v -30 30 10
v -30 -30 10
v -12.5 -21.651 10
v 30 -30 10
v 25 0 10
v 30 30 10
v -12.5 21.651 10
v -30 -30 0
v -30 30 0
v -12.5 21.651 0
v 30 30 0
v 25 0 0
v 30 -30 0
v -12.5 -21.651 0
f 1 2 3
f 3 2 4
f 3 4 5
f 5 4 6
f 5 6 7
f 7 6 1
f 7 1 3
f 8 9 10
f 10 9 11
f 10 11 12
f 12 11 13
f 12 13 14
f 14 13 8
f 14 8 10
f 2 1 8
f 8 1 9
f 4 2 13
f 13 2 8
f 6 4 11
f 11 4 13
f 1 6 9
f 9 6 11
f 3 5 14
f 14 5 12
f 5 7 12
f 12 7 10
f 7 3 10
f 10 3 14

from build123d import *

# Parameters (mm, degrees)
SCHIZZO1_W                   = 60
SCHIZZO1_H                   = 60
ESTRUSIONE_ESTRUSIONE1_DEPTH = 10


with BuildPart() as part:
    # Schizzo1 → Estrusione-Estrusione1 (new body)
    with BuildSketch(Plane.XY):
        Rectangle(SCHIZZO1_W, SCHIZZO1_H)
        Polygon((25, 0), (-12.5, 21.650635095), (-12.5, -21.650635095), align=None, mode=Mode.SUBTRACT)
    extrude(amount=ESTRUSIONE_ESTRUSIONE1_DEPTH)


solid = part.part
